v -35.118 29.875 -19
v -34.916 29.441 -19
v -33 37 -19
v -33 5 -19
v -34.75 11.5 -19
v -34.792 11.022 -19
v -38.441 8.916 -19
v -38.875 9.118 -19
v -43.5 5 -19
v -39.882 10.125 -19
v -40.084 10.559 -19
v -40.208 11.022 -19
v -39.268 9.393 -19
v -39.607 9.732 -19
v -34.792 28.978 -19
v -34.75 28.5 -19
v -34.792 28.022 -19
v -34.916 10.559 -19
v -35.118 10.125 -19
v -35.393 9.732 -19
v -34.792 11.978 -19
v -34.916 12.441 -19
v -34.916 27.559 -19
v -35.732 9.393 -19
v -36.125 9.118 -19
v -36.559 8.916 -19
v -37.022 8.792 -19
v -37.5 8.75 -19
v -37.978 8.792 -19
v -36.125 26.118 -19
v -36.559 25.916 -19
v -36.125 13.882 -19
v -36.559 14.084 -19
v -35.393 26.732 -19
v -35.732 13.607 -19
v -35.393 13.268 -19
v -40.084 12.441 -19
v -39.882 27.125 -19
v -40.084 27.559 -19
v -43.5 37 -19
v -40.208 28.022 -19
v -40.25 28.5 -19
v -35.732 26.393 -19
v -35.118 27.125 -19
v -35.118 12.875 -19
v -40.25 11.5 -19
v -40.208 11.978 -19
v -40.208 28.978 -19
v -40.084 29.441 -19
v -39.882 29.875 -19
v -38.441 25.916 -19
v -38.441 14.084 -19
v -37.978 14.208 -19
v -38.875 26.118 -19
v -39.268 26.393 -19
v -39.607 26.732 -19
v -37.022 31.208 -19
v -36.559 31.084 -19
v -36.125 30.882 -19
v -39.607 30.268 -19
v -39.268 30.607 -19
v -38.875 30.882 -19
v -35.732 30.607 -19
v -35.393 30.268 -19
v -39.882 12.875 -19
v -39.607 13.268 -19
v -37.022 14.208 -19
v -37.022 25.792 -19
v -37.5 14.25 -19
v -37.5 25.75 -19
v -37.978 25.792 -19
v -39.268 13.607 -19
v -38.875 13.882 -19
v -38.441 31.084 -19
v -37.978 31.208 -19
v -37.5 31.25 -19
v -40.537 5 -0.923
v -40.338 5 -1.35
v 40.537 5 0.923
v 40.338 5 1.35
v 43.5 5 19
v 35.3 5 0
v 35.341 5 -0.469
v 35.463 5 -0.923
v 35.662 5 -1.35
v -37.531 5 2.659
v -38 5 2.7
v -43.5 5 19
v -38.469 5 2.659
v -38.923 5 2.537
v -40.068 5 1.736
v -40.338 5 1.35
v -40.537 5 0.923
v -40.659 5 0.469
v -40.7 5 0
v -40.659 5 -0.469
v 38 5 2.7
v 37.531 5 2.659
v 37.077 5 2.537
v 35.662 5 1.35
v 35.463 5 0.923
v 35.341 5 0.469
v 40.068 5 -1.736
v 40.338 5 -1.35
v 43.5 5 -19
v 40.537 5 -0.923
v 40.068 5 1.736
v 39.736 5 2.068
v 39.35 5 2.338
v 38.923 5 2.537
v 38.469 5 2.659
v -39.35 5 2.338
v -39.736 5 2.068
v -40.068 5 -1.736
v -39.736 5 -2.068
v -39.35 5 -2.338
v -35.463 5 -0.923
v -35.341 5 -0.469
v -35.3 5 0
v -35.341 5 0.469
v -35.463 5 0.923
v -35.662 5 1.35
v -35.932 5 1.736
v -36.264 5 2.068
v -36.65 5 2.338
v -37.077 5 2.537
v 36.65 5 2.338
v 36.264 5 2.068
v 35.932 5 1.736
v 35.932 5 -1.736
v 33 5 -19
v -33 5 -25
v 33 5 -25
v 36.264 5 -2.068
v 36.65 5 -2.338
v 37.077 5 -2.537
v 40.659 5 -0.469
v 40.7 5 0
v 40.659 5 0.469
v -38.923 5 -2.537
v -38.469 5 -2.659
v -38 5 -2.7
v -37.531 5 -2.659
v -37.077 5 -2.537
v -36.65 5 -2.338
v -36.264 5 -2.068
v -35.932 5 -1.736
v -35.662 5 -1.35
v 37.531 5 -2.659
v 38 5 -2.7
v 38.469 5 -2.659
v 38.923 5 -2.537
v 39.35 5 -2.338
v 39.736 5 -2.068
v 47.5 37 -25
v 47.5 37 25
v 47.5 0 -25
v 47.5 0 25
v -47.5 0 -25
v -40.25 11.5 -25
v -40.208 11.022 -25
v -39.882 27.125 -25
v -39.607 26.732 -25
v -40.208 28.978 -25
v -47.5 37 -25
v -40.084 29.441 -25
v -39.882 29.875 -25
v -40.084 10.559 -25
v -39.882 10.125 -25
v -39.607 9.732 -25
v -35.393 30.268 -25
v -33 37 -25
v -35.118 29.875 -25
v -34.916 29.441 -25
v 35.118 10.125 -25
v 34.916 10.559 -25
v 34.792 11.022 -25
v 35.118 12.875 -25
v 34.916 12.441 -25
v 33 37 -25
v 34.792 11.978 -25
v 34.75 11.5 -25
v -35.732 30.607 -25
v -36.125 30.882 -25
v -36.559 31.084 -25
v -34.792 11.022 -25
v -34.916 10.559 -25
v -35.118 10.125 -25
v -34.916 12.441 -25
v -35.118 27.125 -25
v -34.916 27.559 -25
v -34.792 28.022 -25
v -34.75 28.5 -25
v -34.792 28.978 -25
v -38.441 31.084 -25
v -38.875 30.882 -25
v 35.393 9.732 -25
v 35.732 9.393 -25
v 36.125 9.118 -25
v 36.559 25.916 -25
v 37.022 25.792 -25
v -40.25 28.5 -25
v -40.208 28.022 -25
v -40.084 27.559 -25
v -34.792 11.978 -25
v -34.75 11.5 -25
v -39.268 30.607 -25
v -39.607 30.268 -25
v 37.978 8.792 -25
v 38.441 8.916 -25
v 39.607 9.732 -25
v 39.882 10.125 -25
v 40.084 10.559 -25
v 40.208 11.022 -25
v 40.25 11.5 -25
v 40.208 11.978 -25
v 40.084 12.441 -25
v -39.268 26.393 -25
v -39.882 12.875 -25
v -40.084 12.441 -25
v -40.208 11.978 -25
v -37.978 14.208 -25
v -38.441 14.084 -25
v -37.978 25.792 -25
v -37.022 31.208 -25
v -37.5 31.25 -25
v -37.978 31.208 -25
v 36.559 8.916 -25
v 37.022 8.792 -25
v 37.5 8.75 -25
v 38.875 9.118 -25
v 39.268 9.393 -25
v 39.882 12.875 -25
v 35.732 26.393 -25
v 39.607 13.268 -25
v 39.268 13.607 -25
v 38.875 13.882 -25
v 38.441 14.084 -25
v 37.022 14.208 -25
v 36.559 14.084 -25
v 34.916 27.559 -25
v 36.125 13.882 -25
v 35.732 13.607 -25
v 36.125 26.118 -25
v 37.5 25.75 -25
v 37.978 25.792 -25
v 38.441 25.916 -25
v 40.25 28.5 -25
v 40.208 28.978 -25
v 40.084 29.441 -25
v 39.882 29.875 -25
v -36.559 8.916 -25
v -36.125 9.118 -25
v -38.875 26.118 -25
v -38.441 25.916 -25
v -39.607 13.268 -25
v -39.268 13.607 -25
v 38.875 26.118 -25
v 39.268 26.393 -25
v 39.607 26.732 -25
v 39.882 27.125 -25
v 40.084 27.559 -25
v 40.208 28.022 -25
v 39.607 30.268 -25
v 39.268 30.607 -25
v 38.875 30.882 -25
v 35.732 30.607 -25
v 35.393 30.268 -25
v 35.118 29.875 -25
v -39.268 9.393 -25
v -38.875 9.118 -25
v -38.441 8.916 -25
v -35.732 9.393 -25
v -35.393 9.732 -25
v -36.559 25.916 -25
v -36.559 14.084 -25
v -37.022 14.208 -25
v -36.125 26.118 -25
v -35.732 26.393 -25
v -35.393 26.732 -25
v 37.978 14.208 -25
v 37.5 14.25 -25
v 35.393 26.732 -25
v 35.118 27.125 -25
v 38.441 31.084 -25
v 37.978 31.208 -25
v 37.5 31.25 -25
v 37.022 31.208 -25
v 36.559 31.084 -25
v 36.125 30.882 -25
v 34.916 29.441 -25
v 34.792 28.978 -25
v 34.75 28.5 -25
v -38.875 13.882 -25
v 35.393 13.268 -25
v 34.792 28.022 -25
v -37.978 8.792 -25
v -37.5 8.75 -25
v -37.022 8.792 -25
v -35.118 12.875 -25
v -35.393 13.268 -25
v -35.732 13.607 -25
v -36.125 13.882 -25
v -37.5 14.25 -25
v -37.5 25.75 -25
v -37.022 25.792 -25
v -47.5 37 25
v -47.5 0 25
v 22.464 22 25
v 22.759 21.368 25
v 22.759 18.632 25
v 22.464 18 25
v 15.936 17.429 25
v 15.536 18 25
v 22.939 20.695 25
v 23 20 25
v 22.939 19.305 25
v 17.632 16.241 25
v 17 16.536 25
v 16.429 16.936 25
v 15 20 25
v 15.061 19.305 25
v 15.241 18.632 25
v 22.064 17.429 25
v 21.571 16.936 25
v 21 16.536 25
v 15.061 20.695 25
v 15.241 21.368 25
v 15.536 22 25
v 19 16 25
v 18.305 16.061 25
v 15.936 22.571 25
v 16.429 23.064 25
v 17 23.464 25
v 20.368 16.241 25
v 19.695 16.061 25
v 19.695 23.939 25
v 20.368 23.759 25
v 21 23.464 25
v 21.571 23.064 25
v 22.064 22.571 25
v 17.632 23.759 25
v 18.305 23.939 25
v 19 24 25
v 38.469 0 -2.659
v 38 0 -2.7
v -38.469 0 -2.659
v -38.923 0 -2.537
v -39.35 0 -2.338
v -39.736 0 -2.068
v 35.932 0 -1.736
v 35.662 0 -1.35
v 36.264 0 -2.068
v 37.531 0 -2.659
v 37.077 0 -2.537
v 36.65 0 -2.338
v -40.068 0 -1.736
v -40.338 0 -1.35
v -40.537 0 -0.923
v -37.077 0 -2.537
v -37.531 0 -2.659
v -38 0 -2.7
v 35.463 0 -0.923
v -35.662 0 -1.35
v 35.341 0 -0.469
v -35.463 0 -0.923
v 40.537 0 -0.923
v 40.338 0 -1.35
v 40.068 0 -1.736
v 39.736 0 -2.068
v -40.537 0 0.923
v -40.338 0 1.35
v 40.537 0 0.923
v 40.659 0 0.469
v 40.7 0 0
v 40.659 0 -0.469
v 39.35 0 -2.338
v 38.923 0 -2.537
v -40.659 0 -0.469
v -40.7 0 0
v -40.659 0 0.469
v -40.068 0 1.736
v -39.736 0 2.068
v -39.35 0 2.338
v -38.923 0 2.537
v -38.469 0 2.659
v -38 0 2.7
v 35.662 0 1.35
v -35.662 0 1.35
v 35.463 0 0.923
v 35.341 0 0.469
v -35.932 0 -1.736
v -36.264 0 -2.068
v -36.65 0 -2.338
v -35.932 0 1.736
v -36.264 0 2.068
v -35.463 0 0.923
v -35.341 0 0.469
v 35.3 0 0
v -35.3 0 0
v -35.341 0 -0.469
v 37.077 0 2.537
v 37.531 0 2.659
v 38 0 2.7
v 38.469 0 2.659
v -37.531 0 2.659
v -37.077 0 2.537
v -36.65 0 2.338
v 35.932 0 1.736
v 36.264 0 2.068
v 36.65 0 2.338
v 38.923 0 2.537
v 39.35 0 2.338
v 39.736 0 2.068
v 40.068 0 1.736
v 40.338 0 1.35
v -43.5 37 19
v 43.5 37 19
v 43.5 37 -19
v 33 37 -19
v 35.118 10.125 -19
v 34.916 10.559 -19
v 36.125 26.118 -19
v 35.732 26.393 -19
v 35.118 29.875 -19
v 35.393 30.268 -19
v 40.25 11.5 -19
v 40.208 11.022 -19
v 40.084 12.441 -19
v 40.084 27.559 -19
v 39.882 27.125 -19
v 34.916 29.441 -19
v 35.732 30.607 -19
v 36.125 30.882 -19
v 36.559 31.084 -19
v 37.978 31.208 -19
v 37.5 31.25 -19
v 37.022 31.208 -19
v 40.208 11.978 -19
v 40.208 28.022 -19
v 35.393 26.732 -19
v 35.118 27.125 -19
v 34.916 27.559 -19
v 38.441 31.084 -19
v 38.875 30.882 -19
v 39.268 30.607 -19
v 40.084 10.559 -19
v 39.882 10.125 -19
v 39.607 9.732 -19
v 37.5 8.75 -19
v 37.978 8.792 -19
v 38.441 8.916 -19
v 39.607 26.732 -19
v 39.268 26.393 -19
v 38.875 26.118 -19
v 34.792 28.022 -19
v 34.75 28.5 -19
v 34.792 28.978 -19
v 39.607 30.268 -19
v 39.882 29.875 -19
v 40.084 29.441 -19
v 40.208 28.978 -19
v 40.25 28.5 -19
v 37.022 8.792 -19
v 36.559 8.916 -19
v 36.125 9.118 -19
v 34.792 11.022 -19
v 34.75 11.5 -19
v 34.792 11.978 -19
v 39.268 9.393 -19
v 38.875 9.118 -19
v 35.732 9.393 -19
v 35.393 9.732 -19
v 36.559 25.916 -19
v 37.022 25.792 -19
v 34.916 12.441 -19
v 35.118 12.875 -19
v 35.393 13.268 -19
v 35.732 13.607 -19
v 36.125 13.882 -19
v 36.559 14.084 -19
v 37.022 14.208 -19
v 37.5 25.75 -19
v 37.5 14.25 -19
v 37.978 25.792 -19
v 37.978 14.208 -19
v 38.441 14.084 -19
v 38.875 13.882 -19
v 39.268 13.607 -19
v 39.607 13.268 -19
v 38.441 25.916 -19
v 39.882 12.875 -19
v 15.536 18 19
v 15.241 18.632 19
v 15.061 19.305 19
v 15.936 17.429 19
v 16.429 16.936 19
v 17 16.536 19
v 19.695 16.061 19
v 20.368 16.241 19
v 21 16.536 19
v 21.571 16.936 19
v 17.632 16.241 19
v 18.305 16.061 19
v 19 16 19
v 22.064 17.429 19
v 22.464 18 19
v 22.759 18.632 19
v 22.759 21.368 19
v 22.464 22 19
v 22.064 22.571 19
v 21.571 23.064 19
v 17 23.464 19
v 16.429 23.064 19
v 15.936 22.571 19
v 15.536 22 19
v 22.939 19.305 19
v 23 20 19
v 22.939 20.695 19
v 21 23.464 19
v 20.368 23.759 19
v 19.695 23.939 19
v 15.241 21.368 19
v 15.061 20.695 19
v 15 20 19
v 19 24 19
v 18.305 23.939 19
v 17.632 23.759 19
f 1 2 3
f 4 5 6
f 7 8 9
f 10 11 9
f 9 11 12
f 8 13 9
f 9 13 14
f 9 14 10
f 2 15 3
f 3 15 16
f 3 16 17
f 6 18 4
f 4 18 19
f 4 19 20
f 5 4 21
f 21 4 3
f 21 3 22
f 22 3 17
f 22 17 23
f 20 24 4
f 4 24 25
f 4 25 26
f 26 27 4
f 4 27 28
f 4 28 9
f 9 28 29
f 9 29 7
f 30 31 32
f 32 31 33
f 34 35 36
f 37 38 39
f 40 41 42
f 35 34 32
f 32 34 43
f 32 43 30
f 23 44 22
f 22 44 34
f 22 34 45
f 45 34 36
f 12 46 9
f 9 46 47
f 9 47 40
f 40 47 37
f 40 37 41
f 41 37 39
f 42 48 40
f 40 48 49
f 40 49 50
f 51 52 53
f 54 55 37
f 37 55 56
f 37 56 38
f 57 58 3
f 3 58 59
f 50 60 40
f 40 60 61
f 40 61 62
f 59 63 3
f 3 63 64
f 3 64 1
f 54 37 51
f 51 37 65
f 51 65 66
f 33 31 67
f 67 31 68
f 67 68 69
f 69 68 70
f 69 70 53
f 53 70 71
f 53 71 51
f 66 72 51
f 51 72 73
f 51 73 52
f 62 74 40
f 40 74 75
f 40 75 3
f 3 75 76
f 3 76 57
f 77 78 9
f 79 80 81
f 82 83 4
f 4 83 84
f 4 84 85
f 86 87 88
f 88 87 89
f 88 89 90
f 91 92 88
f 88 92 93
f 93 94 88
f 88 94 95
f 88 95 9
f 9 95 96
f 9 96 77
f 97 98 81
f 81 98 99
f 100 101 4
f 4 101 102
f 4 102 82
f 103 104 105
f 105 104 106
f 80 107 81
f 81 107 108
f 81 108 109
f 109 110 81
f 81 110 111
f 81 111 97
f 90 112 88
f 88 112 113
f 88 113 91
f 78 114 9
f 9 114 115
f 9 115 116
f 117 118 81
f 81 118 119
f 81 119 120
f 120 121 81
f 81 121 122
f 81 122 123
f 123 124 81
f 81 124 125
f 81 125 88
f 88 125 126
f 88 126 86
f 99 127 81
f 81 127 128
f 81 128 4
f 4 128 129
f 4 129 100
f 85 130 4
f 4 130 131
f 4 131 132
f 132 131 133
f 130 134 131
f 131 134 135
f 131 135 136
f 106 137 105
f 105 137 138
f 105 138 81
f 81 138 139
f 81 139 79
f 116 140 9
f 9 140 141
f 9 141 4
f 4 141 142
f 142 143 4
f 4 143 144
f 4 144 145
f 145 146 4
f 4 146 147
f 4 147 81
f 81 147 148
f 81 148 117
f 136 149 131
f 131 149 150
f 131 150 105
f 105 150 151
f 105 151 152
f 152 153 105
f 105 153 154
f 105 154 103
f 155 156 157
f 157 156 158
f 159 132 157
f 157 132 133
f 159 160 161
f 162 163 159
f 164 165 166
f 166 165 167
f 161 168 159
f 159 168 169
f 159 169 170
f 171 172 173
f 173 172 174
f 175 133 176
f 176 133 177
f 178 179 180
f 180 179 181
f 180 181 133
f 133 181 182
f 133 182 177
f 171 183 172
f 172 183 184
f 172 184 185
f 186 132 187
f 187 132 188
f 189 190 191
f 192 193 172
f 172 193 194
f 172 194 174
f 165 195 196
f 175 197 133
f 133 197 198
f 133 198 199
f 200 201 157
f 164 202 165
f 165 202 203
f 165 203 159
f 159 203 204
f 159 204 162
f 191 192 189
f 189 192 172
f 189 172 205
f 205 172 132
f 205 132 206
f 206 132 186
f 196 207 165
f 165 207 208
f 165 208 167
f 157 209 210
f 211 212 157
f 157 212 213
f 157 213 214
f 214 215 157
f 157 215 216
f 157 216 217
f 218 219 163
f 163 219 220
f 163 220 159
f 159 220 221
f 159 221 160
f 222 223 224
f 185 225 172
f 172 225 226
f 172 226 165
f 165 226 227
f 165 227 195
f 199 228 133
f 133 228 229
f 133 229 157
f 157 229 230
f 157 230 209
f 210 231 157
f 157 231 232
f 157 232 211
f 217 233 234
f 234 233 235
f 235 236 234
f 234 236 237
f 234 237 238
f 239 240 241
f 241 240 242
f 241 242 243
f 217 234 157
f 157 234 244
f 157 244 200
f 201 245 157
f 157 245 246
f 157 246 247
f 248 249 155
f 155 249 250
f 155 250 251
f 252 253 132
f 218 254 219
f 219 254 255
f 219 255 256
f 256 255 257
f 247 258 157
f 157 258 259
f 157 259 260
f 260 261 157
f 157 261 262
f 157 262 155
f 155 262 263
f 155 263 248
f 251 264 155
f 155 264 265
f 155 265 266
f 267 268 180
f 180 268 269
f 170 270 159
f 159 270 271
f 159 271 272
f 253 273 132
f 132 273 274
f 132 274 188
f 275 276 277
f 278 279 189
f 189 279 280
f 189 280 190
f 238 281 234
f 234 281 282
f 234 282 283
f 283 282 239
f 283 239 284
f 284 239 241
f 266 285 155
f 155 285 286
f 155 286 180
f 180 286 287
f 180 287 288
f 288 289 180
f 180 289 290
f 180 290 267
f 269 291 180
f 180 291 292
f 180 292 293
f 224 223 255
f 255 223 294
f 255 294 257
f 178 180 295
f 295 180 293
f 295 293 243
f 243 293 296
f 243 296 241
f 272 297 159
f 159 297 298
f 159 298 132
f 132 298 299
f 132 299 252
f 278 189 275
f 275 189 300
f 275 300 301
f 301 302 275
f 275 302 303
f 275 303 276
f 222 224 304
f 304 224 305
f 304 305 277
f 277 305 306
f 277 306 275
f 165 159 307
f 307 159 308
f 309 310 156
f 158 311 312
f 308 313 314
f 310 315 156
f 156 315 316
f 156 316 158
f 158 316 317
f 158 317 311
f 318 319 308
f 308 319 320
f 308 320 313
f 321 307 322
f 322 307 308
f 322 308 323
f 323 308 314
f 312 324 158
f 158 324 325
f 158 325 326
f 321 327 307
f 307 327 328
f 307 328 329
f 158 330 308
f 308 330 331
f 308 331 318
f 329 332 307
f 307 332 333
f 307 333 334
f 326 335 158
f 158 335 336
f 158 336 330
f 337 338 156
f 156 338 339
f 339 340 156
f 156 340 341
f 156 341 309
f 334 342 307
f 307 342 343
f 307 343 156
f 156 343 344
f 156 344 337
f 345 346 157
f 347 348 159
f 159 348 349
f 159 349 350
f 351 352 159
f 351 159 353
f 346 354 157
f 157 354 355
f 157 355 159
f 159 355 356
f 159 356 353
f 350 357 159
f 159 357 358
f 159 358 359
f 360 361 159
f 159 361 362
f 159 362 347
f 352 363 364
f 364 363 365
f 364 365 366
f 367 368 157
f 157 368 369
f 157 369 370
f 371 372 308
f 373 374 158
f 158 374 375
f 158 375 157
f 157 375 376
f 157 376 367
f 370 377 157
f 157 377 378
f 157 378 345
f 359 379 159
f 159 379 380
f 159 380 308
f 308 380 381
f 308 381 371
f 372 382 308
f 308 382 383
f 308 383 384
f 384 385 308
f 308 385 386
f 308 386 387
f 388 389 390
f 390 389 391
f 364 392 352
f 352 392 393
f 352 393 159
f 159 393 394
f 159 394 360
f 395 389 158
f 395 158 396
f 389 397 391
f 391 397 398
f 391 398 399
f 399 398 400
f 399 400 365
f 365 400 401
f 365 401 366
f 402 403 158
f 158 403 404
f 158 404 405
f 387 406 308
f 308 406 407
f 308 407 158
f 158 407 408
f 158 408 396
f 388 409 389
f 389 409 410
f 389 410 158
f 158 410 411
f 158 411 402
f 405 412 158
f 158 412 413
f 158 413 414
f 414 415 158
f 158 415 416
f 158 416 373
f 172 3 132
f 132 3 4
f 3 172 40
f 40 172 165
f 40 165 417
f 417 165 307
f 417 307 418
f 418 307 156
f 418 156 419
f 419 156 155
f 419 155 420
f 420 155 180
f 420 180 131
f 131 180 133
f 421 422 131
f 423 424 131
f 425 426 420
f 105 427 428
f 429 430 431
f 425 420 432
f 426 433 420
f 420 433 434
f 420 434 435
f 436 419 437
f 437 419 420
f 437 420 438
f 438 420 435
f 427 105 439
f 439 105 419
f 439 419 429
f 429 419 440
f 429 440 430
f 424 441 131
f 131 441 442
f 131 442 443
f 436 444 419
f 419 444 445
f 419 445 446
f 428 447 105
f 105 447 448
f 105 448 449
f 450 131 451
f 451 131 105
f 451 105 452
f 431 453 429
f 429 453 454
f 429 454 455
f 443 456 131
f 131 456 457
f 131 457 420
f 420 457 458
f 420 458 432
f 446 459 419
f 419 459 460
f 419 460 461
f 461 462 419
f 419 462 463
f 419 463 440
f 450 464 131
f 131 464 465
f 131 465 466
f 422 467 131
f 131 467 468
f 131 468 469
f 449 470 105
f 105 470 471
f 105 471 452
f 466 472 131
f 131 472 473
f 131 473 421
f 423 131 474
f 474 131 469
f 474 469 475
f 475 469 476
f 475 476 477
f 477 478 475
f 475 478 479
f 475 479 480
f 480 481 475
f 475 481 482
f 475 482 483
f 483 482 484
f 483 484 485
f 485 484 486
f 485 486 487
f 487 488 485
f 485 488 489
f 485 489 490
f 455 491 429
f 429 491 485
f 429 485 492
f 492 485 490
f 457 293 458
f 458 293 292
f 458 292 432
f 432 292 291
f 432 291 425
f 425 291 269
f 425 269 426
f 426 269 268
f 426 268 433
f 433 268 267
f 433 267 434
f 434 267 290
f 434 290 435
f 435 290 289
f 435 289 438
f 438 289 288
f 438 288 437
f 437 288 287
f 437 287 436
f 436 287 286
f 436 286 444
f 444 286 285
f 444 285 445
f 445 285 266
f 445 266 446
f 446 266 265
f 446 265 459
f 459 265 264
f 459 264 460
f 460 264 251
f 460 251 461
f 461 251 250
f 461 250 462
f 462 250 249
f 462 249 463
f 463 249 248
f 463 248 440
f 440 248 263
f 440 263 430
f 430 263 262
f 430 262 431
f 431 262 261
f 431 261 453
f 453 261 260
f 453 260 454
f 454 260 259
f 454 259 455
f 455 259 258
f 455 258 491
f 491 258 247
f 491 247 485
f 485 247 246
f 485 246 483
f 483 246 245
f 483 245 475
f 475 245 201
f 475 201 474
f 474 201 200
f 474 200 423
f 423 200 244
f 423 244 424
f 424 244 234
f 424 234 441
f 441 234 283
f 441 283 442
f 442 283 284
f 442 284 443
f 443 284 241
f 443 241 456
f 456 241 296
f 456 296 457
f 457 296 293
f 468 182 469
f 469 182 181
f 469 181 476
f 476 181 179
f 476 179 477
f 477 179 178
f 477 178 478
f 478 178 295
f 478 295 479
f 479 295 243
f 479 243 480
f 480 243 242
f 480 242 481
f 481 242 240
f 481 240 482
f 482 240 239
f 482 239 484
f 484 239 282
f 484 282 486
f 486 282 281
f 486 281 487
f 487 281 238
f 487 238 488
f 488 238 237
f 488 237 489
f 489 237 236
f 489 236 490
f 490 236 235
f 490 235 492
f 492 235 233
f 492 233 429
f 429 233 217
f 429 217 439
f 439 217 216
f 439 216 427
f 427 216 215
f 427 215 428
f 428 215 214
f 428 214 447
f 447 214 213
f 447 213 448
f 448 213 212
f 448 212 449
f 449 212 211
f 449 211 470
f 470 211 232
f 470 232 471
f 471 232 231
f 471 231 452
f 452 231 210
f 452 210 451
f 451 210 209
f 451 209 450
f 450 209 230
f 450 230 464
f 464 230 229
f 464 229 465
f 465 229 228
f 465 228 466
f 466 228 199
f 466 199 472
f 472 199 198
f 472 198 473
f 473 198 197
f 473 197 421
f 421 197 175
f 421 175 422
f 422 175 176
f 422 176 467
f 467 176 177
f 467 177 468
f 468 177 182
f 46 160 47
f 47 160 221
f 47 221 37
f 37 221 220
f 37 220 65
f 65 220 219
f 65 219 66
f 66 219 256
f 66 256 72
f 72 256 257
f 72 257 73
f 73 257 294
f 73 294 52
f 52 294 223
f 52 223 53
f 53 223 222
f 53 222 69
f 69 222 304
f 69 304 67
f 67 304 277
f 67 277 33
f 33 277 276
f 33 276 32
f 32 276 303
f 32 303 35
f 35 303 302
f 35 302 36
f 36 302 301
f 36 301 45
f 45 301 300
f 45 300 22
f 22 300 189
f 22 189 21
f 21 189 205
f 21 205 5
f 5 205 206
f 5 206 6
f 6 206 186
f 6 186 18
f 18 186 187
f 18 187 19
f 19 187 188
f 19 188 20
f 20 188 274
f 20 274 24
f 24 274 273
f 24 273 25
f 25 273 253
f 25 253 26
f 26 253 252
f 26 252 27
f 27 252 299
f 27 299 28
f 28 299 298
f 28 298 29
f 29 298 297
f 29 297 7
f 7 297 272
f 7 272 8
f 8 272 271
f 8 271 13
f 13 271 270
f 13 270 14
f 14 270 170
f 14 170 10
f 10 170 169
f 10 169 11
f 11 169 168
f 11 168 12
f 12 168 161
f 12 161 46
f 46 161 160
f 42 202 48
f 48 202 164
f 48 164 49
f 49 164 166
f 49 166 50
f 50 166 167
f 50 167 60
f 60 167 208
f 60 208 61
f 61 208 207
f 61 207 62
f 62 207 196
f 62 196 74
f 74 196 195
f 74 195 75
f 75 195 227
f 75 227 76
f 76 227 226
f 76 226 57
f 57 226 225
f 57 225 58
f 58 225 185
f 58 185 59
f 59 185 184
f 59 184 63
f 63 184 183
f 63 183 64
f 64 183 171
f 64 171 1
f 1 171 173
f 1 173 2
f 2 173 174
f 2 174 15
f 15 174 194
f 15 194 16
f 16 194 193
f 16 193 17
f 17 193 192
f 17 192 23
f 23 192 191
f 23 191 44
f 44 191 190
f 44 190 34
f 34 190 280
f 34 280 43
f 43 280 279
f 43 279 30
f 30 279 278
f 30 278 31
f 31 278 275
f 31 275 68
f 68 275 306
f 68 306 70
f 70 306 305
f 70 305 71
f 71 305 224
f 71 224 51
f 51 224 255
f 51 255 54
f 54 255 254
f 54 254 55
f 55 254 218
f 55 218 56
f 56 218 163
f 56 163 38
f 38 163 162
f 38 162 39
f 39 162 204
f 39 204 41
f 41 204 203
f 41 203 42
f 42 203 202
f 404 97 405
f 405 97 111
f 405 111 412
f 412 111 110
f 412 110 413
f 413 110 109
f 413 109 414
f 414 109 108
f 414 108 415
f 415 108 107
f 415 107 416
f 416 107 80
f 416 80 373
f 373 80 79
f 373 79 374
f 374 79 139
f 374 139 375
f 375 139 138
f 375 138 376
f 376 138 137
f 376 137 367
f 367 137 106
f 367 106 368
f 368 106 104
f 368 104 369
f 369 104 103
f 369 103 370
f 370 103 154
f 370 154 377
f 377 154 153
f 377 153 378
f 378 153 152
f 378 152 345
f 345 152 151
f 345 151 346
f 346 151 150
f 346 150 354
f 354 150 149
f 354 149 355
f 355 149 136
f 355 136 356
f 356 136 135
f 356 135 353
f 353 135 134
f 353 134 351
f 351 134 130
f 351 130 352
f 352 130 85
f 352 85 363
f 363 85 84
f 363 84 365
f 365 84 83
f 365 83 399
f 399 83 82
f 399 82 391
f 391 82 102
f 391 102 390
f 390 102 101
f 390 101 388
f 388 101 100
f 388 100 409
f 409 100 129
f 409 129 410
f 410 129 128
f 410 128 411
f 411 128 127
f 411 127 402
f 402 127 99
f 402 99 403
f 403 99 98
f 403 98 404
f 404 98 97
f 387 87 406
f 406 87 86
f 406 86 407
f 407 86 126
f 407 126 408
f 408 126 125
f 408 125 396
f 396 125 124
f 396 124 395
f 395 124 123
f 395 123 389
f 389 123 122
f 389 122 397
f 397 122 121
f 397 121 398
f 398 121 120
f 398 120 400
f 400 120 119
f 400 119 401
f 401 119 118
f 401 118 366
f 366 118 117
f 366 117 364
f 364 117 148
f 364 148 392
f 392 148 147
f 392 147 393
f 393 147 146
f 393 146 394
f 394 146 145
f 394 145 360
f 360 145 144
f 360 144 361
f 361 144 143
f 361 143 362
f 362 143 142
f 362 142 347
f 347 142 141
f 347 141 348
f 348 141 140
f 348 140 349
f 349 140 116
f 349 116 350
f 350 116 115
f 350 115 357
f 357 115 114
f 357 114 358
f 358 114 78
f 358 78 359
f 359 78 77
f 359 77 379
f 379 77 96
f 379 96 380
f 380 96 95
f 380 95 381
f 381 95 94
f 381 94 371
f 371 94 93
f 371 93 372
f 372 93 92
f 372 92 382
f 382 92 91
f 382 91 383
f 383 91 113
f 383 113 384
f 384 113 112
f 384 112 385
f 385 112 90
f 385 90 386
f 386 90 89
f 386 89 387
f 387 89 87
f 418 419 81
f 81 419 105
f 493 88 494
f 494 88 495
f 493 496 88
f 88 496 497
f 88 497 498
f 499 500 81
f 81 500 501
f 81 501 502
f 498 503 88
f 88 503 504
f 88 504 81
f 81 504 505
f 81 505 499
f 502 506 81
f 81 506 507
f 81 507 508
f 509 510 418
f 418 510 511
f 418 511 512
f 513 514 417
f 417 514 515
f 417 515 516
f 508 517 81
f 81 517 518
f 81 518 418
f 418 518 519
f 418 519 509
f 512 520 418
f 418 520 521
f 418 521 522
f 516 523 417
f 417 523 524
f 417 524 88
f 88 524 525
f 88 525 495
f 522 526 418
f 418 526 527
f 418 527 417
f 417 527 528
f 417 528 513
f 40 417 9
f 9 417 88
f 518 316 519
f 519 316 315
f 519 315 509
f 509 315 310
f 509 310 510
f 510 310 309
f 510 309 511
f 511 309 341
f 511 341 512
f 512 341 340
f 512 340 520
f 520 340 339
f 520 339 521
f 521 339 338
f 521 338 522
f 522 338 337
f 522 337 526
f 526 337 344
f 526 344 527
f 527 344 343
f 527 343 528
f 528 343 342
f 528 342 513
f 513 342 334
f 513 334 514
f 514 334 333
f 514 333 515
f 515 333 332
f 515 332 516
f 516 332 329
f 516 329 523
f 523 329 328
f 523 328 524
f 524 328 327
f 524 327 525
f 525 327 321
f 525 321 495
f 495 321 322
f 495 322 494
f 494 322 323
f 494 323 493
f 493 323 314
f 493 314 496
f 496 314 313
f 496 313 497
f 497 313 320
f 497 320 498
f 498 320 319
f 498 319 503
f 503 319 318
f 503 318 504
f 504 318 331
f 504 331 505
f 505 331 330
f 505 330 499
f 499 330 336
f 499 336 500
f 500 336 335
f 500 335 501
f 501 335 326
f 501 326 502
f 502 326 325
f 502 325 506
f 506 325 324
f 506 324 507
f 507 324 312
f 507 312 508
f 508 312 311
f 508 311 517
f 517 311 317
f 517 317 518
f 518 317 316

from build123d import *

# Parameters (mm, degrees)
SKETCH1_W           = 95
SKETCH1_H           = 50
BOSS_EXTRUDE1_DEPTH = 5
SKETCH2_W           = 14.5
SKETCH2_H           = 6
BOSS_EXTRUDE2_DEPTH = 32
SKETCH4_R           = 2.75
CUT_EXTRUDE1_DEPTH  = 6
SKETCH6_R           = 2.7
CUT_EXTRUDE2_DEPTH  = 6
BOSS_EXTRUDE5_DEPTH = 32
SKETCH11_R          = 4
CUT_EXTRUDE3_DEPTH  = 6


with BuildPart() as part:
    # Sketch1 → Boss-Extrude1 (new body)
    with BuildSketch(Plane(origin=(0, 0, 0), x_dir=(1, 0, 0), z_dir=(0, 1, 0))):
        Rectangle(SKETCH1_W, SKETCH1_H)
    extrude(amount=BOSS_EXTRUDE1_DEPTH)

    # Sketch2 → Boss-Extrude2 (add)
    with BuildSketch(Plane(origin=(0, 5, 0), x_dir=(1, 0, 0), z_dir=(0, 1, 0))):
        with Locations((-40.25, 22)):
            Rectangle(SKETCH2_W, SKETCH2_H)
        with Locations((40.25, 22)):
            Rectangle(SKETCH2_W, SKETCH2_H)
    extrude(amount=BOSS_EXTRUDE2_DEPTH)

    # Sketch4 → Cut-Extrude1 (cut)
    with BuildSketch(Plane(origin=(0, 0, -25), x_dir=(-1, 0, 0), z_dir=(0, 0, -1))):
        with Locations((37.5, 11.5)):
            Circle(SKETCH4_R)
        with Locations((37.5, 28.5)):
            Circle(SKETCH4_R)
        with Locations(Location((-37.5, 28.5, 0), (0, 0, 180))):
            Circle(SKETCH4_R)
        with Locations(Location((-37.5, 11.5, 0), (0, 0, 180))):
            Circle(SKETCH4_R)
    extrude(amount=-CUT_EXTRUDE1_DEPTH, mode=Mode.SUBTRACT)

    # Sketch6 → Cut-Extrude2 (cut)
    with BuildSketch(Plane(origin=(0, 5, 0), x_dir=(1, 0, 0), z_dir=(0, 1, 0))):
        with Locations(Location((-38, 0, 0), (0, 0, 270))):
            Circle(SKETCH6_R)
        with Locations(Location((38, 0, 0), (0, 0, 270))):
            Circle(SKETCH6_R)
    extrude(amount=-CUT_EXTRUDE2_DEPTH, mode=Mode.SUBTRACT)

    # Sketch10 → Boss-Extrude5 (add)
    with BuildSketch(Plane(origin=(0, 5, 0), x_dir=(1, 0, 0), z_dir=(0, 1, 0))):
        Polygon((-47.5, -14), (-47.5, -25), (-43.5, -25), (43.5, -25), (47.5, -25), (47.5, -19), (47.5, 19), (43.5, 19), (43.5, -19), (-43.5, -19), (-43.5, 19), (-47.5, 19), align=None)
    extrude(amount=BOSS_EXTRUDE5_DEPTH)

    # Sketch11 → Cut-Extrude3 (cut)
    with BuildSketch(Plane.XY.offset(25)):
        with Locations((19, 20)):
            Circle(SKETCH11_R)
    extrude(amount=-CUT_EXTRUDE3_DEPTH, mode=Mode.SUBTRACT)


solid = part.part
